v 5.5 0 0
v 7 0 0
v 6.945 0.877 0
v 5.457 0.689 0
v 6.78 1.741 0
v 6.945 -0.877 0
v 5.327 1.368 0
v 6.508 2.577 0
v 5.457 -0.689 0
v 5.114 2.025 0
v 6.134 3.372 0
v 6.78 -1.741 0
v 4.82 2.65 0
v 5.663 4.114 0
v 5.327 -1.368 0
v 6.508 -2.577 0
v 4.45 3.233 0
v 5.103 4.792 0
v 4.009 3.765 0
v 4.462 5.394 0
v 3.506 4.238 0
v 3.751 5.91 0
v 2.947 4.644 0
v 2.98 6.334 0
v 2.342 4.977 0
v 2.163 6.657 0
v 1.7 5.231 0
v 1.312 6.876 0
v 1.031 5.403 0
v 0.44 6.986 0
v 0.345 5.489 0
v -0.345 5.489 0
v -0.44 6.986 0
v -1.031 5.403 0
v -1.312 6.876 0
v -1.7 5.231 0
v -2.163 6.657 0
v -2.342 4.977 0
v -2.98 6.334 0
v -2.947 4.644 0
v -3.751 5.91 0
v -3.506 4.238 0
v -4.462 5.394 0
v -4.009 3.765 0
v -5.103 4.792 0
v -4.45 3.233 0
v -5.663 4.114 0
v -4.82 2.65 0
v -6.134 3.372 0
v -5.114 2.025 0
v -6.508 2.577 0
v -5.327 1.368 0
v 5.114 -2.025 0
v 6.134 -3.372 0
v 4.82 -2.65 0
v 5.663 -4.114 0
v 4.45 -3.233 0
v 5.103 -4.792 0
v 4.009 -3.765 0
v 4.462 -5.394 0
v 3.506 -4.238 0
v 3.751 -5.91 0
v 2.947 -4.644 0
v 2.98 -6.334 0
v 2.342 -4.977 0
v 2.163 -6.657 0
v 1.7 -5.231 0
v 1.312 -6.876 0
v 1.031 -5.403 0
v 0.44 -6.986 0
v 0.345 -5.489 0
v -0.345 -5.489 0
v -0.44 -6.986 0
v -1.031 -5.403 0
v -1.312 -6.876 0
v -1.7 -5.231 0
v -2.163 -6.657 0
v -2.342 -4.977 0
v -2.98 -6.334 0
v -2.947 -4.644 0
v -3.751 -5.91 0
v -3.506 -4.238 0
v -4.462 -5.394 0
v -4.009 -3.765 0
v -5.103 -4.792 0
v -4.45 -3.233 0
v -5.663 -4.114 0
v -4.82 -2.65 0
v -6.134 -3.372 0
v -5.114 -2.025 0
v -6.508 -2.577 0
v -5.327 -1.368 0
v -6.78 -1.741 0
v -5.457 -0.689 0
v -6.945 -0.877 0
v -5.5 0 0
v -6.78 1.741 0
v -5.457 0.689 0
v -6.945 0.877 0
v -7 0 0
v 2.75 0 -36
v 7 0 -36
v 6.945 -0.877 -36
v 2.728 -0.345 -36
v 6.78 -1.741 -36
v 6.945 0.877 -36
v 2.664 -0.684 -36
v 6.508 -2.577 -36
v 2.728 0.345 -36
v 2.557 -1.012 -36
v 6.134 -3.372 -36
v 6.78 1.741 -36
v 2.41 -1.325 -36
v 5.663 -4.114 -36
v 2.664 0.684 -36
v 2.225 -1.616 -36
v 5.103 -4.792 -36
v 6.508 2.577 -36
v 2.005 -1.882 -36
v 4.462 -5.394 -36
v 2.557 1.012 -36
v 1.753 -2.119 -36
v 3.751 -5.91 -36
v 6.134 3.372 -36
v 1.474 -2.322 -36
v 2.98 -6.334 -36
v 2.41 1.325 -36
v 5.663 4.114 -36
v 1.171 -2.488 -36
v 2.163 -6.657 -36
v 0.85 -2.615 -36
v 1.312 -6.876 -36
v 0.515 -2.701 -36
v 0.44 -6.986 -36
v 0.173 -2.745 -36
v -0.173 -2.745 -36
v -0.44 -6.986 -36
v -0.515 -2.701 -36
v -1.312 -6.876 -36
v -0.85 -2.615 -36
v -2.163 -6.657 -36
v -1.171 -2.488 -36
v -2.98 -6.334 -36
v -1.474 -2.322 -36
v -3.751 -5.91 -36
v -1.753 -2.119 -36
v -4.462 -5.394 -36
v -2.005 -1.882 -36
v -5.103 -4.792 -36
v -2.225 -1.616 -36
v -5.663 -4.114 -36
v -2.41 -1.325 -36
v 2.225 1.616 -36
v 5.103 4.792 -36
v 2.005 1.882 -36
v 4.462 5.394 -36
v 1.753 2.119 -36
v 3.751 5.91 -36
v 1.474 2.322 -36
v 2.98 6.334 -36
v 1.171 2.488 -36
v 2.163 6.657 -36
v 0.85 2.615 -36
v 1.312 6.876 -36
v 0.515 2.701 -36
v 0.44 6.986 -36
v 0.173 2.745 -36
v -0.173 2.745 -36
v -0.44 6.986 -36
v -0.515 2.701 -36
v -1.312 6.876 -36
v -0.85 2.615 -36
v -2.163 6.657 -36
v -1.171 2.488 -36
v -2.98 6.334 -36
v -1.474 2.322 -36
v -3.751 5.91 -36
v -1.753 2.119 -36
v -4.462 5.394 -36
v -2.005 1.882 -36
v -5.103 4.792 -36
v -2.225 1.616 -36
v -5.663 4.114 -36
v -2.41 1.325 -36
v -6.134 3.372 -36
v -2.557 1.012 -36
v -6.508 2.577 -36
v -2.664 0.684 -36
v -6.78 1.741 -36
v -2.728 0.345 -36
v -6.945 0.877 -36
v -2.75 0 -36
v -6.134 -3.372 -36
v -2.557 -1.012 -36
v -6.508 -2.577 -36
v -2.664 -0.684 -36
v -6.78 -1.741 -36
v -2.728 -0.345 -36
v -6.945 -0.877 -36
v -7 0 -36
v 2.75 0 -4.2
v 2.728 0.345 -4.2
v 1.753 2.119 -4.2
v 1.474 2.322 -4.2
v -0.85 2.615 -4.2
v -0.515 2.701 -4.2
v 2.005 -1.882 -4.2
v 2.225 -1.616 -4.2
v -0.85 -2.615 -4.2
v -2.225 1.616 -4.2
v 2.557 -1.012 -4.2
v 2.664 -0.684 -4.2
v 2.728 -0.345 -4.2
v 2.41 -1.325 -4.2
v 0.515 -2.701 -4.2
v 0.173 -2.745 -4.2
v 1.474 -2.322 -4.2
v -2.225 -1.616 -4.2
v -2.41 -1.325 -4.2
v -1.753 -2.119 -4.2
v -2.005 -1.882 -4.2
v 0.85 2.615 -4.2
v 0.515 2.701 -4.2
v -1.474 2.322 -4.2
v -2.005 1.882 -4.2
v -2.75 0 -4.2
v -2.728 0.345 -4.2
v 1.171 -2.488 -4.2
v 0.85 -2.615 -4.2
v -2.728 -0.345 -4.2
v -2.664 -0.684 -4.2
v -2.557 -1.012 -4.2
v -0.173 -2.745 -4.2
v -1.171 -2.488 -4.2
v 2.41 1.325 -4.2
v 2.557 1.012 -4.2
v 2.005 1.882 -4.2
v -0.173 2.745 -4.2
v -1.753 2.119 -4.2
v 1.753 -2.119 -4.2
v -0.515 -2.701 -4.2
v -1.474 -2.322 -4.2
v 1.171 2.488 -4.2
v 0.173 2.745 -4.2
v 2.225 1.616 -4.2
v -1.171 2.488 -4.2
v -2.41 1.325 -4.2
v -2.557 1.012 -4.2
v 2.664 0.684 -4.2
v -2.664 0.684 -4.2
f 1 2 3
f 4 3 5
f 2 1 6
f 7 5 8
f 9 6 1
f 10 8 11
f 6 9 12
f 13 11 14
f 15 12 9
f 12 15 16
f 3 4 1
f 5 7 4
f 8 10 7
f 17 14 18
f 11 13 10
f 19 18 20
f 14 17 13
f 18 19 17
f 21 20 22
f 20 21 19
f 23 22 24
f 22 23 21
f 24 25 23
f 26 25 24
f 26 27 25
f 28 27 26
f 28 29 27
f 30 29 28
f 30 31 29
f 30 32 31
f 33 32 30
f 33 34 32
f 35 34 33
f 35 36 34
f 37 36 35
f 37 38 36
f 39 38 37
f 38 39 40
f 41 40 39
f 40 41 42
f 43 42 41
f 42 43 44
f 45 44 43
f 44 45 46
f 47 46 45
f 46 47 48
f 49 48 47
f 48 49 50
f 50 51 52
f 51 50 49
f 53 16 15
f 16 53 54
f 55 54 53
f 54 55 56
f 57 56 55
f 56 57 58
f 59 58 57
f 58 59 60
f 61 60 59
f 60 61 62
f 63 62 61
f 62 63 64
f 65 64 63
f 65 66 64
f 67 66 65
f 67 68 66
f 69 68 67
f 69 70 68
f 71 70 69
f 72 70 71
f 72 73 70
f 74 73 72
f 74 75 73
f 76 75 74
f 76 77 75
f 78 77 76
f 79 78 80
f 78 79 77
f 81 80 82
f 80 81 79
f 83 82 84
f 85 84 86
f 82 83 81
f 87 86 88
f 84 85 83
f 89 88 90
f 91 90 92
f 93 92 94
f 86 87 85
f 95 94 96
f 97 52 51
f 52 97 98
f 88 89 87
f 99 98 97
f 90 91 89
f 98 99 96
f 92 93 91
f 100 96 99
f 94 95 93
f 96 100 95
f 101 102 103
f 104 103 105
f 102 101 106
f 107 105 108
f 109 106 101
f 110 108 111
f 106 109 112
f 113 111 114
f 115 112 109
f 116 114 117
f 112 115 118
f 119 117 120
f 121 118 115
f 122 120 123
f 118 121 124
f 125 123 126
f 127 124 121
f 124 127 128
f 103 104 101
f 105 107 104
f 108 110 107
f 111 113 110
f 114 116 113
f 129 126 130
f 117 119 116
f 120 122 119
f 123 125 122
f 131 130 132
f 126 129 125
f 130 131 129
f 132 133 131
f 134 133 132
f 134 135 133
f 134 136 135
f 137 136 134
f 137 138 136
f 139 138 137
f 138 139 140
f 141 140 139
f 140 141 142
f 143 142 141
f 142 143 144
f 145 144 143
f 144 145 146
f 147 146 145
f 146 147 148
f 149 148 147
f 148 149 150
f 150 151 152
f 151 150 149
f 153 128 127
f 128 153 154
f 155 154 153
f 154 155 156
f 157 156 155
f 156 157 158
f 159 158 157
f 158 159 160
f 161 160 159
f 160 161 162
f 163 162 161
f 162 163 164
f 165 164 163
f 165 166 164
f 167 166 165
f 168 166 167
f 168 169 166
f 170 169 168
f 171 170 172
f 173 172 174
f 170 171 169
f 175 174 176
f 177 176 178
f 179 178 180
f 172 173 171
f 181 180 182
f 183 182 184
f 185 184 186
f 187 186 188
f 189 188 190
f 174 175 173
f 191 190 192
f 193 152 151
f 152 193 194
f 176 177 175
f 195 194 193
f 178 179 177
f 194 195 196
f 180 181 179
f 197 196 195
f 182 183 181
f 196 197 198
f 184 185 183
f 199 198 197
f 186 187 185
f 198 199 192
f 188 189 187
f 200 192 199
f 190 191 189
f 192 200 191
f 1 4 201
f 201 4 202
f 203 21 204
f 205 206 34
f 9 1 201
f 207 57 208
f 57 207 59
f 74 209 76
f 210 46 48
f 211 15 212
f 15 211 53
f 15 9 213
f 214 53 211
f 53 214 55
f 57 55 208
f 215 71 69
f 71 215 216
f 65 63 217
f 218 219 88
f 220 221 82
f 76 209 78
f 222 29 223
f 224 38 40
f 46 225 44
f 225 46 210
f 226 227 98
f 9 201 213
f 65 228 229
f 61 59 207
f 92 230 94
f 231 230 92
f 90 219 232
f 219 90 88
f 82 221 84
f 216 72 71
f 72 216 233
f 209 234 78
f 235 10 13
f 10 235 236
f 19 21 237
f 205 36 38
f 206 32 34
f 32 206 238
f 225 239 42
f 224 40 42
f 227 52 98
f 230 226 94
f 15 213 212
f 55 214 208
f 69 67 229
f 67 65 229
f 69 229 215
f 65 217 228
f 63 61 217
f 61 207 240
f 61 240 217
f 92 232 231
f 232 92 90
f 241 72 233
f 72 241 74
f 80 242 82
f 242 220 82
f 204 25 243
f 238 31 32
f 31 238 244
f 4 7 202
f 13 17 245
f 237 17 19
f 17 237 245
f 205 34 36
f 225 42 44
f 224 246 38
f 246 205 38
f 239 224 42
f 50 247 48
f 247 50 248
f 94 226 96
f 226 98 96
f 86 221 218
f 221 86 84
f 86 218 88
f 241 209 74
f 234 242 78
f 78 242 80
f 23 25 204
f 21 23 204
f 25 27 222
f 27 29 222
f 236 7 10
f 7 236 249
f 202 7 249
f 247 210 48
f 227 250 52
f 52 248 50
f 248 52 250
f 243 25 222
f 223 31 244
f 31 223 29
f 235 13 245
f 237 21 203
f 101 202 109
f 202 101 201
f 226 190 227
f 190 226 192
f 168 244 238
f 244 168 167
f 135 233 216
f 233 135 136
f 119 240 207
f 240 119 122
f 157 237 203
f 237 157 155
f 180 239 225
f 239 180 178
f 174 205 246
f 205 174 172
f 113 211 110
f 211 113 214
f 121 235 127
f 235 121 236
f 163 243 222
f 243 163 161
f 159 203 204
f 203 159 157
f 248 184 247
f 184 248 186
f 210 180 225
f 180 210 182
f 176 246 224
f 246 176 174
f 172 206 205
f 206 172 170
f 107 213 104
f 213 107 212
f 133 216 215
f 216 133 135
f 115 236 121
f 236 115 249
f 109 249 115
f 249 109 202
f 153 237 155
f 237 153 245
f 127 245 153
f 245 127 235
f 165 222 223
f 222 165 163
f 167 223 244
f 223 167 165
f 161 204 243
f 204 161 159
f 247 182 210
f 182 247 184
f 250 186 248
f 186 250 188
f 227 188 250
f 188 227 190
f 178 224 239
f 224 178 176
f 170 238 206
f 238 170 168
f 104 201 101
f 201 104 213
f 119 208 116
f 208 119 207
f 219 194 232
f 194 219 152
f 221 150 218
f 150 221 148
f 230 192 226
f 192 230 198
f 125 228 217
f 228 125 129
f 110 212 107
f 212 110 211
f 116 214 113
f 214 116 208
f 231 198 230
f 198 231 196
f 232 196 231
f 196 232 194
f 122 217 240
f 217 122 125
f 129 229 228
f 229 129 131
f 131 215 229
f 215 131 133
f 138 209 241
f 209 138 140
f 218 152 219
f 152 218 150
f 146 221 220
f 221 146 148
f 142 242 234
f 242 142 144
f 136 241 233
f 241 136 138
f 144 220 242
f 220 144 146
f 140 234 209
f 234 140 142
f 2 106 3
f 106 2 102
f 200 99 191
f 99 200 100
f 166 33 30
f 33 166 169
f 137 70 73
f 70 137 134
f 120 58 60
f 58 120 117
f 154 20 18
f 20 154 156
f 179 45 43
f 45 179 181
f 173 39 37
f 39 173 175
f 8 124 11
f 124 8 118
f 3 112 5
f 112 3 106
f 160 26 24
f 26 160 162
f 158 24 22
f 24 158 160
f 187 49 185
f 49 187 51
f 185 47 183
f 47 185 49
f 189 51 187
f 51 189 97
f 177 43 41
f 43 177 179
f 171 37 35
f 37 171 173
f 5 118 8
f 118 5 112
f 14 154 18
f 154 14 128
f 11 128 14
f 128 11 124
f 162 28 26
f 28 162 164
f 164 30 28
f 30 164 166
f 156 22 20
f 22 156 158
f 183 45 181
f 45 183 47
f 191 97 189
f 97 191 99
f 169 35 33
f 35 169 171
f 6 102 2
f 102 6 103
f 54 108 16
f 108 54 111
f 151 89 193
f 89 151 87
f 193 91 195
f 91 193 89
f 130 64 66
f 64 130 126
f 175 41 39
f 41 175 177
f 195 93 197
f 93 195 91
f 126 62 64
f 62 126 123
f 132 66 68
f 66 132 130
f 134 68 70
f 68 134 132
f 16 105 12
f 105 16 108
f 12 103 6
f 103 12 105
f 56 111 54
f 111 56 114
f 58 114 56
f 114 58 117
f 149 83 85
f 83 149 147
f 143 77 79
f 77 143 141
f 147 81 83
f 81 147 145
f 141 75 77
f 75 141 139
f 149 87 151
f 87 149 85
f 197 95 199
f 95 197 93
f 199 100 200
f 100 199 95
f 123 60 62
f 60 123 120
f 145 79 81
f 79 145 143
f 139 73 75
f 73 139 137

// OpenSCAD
$fn = 50;


difference() {
	union() {
		translate(v = [0, 0, -36.0000000000]) {
			cylinder(h = 36, r = 7.0000000000);
		}
		cylinder(h = 0, r = 16.0000000000);
	}
	union() {
		translate(v = [0, 0, 0]) {
			rotate(a = [0, 0, 0]) {
				difference() {
					union() {
						#translate(v = [0, 0, -36.0000000000]) {
							cylinder(h = 36, r = 2.2500000000);
						}
						#translate(v = [0, 0, -4.2000000000]) {
							cylinder(h = 4.2000000000, r1 = 2.7500000000, r2 = 5.5000000000);
						}
						#translate(v = [0, 0, -36.0000000000]) {
							cylinder(h = 36, r = 2.7500000000);
						}
						#translate(v = [0, 0, -36.0000000000]) {
							cylinder(h = 36, r = 2.2500000000);
						}
					}
					union();
				}
			}
		}
	}
}
